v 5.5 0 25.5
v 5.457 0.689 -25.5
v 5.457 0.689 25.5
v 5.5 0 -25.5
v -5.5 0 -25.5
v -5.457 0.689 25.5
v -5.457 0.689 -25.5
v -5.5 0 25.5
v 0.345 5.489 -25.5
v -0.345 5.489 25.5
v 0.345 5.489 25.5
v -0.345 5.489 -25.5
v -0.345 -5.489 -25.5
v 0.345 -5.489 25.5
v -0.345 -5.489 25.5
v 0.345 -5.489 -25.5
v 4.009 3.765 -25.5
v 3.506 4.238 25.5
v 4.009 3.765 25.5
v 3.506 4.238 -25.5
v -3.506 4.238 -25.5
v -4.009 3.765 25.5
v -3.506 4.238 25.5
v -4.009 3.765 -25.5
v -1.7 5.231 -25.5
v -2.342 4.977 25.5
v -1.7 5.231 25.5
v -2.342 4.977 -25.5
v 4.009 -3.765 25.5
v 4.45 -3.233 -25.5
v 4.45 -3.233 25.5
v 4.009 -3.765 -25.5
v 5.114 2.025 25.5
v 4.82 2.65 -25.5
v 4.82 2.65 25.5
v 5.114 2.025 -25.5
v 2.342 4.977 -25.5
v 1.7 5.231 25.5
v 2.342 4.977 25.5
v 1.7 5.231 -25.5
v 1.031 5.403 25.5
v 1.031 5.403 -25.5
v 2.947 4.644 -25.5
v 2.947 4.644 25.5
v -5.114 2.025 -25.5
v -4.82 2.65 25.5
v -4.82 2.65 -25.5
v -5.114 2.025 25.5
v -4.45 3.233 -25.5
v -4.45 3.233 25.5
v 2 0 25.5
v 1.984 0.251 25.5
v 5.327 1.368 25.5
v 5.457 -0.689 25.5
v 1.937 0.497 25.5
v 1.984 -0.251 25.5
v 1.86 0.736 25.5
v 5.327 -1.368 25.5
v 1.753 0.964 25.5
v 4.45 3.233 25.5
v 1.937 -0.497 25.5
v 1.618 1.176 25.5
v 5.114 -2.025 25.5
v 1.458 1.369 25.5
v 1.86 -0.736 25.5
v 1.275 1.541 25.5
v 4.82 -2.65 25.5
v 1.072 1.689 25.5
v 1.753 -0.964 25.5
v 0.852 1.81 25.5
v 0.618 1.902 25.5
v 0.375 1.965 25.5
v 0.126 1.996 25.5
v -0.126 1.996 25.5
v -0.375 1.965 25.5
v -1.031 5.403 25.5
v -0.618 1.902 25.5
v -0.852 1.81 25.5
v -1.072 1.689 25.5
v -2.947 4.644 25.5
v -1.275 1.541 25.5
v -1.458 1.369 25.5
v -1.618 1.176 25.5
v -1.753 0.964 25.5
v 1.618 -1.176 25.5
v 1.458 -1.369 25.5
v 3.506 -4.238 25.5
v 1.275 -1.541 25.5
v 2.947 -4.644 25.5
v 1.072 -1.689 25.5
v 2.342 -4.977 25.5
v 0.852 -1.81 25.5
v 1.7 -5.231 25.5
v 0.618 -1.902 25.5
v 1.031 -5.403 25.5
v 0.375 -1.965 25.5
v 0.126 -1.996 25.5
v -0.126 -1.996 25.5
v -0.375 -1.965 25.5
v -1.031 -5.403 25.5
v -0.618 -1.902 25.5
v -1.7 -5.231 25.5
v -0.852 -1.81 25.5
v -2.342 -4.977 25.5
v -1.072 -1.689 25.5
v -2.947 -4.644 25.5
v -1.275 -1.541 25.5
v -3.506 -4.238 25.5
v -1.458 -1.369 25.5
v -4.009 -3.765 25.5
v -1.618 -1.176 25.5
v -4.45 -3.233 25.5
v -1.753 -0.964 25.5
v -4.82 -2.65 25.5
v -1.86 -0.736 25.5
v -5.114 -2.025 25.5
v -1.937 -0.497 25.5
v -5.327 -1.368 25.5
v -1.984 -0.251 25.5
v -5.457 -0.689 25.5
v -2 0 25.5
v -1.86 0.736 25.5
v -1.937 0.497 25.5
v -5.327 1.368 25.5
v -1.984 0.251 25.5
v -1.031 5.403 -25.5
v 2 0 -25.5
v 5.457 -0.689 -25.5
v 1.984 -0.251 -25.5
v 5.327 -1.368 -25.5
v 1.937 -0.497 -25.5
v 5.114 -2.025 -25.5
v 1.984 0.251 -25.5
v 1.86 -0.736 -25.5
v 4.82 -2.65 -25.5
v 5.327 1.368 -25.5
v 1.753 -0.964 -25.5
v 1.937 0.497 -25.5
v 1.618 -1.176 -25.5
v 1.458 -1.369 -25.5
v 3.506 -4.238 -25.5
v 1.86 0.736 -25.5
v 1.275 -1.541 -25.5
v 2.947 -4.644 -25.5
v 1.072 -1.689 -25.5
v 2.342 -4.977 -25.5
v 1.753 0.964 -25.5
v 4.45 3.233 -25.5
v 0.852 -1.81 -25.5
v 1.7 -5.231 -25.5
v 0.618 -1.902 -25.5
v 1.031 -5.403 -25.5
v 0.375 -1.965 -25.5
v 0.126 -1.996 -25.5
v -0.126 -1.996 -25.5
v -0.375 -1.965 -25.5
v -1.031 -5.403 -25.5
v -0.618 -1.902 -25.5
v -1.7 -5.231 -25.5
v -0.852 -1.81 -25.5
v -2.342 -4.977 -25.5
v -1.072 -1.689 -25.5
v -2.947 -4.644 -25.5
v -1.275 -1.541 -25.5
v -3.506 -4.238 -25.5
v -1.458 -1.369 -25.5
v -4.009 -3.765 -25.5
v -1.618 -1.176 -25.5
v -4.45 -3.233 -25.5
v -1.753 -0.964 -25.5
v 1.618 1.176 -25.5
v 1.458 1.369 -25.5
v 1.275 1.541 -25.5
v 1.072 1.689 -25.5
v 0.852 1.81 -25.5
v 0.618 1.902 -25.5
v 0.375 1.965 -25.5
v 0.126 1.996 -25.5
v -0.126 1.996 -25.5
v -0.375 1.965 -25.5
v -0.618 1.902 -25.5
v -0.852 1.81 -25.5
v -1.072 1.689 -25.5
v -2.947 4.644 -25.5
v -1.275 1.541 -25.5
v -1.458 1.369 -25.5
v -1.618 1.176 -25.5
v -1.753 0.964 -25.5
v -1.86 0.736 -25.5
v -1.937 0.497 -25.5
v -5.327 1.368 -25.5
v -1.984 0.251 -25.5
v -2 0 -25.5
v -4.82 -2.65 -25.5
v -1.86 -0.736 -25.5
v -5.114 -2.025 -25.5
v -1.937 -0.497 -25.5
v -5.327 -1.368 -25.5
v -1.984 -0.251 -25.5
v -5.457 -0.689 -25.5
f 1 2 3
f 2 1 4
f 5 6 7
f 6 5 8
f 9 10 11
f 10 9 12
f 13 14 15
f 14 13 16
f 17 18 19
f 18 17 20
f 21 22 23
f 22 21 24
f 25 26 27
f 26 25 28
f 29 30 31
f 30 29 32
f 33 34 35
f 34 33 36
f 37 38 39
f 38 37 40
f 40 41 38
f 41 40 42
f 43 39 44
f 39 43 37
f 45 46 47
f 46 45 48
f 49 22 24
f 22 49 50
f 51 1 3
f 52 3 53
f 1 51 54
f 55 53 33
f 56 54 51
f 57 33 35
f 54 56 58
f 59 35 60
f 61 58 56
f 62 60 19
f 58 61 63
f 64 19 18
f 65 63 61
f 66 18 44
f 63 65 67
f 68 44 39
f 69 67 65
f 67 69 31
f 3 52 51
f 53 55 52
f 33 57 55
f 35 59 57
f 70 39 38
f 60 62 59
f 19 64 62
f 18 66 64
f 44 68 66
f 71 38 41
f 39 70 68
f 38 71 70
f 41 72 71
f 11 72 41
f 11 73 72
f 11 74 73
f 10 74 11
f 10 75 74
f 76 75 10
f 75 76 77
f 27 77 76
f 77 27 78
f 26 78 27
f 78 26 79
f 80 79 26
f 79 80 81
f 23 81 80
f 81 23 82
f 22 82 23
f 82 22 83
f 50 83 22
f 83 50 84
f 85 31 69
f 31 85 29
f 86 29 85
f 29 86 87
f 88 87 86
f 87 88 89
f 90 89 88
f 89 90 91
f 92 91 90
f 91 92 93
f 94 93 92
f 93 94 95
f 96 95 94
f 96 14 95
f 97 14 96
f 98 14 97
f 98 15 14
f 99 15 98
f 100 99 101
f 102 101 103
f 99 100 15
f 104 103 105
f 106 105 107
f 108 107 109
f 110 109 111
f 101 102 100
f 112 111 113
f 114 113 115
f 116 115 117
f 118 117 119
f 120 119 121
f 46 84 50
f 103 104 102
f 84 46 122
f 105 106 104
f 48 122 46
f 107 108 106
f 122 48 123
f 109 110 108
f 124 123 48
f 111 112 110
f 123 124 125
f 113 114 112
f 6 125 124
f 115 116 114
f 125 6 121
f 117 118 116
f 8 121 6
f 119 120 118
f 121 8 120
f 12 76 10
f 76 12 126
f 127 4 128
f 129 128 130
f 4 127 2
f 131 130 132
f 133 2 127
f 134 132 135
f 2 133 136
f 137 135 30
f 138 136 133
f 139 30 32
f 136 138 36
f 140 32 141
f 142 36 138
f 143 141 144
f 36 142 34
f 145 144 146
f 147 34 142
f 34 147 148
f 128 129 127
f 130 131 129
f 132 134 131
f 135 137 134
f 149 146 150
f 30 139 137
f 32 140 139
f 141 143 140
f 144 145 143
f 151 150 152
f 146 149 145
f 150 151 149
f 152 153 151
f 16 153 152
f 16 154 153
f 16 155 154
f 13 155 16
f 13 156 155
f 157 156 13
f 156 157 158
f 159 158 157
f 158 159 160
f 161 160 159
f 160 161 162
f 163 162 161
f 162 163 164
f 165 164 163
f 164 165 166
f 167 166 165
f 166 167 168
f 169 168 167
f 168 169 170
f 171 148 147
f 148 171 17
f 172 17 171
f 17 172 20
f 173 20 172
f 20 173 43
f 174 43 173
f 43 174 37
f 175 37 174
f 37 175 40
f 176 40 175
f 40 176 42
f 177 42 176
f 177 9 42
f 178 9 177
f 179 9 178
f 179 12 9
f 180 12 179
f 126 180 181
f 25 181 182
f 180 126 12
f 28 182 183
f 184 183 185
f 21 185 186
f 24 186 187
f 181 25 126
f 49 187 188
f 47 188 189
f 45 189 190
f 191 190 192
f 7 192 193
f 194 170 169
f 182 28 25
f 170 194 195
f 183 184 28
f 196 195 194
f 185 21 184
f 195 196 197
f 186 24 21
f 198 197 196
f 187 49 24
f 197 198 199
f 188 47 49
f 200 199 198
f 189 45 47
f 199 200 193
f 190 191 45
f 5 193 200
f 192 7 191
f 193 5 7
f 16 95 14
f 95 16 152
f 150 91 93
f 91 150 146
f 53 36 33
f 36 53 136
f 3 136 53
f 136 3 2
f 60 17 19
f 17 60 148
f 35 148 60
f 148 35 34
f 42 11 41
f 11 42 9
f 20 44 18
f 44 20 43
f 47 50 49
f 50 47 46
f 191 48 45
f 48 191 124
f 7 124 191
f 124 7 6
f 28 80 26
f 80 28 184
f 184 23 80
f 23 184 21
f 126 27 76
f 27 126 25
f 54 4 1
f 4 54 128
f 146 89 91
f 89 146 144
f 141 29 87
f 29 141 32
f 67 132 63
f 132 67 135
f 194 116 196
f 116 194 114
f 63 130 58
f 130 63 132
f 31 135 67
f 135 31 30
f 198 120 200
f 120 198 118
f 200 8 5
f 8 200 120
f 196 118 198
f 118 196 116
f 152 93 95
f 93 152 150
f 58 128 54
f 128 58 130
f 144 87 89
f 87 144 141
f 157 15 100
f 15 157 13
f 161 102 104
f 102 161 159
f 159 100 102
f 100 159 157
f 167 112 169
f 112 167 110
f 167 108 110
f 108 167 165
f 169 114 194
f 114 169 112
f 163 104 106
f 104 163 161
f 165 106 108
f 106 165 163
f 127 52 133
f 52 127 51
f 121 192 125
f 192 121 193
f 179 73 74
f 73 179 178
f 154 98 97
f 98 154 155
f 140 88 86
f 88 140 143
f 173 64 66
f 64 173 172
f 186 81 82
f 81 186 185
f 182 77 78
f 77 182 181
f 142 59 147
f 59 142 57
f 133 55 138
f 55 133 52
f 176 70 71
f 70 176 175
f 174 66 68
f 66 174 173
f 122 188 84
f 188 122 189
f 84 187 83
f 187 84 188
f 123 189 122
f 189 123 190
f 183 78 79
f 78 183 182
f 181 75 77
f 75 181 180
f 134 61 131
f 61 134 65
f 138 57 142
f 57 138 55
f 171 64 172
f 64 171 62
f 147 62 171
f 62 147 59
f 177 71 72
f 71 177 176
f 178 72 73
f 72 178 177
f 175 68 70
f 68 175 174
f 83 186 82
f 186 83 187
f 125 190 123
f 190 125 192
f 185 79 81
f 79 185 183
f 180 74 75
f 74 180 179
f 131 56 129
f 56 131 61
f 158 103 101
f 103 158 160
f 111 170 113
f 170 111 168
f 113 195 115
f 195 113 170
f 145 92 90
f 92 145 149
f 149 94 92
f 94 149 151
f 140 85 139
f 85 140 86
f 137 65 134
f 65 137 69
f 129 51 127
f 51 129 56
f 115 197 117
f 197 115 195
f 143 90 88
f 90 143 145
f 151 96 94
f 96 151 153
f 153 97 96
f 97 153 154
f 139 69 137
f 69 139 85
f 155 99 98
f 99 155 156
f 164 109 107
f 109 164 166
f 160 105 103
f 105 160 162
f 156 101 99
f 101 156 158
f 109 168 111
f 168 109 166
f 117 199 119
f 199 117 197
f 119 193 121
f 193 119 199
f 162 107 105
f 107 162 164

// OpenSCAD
$fn = 50;


difference() {
	union() {
		translate(v = [0, 0, -25.5000000000]) {
			cylinder(h = 51, r = 5.5000000000);
		}
	}
	union() {
		translate(v = [0, 0, -100.0000000000]) {
			cylinder(h = 200, r = 2);
		}
	}
}
